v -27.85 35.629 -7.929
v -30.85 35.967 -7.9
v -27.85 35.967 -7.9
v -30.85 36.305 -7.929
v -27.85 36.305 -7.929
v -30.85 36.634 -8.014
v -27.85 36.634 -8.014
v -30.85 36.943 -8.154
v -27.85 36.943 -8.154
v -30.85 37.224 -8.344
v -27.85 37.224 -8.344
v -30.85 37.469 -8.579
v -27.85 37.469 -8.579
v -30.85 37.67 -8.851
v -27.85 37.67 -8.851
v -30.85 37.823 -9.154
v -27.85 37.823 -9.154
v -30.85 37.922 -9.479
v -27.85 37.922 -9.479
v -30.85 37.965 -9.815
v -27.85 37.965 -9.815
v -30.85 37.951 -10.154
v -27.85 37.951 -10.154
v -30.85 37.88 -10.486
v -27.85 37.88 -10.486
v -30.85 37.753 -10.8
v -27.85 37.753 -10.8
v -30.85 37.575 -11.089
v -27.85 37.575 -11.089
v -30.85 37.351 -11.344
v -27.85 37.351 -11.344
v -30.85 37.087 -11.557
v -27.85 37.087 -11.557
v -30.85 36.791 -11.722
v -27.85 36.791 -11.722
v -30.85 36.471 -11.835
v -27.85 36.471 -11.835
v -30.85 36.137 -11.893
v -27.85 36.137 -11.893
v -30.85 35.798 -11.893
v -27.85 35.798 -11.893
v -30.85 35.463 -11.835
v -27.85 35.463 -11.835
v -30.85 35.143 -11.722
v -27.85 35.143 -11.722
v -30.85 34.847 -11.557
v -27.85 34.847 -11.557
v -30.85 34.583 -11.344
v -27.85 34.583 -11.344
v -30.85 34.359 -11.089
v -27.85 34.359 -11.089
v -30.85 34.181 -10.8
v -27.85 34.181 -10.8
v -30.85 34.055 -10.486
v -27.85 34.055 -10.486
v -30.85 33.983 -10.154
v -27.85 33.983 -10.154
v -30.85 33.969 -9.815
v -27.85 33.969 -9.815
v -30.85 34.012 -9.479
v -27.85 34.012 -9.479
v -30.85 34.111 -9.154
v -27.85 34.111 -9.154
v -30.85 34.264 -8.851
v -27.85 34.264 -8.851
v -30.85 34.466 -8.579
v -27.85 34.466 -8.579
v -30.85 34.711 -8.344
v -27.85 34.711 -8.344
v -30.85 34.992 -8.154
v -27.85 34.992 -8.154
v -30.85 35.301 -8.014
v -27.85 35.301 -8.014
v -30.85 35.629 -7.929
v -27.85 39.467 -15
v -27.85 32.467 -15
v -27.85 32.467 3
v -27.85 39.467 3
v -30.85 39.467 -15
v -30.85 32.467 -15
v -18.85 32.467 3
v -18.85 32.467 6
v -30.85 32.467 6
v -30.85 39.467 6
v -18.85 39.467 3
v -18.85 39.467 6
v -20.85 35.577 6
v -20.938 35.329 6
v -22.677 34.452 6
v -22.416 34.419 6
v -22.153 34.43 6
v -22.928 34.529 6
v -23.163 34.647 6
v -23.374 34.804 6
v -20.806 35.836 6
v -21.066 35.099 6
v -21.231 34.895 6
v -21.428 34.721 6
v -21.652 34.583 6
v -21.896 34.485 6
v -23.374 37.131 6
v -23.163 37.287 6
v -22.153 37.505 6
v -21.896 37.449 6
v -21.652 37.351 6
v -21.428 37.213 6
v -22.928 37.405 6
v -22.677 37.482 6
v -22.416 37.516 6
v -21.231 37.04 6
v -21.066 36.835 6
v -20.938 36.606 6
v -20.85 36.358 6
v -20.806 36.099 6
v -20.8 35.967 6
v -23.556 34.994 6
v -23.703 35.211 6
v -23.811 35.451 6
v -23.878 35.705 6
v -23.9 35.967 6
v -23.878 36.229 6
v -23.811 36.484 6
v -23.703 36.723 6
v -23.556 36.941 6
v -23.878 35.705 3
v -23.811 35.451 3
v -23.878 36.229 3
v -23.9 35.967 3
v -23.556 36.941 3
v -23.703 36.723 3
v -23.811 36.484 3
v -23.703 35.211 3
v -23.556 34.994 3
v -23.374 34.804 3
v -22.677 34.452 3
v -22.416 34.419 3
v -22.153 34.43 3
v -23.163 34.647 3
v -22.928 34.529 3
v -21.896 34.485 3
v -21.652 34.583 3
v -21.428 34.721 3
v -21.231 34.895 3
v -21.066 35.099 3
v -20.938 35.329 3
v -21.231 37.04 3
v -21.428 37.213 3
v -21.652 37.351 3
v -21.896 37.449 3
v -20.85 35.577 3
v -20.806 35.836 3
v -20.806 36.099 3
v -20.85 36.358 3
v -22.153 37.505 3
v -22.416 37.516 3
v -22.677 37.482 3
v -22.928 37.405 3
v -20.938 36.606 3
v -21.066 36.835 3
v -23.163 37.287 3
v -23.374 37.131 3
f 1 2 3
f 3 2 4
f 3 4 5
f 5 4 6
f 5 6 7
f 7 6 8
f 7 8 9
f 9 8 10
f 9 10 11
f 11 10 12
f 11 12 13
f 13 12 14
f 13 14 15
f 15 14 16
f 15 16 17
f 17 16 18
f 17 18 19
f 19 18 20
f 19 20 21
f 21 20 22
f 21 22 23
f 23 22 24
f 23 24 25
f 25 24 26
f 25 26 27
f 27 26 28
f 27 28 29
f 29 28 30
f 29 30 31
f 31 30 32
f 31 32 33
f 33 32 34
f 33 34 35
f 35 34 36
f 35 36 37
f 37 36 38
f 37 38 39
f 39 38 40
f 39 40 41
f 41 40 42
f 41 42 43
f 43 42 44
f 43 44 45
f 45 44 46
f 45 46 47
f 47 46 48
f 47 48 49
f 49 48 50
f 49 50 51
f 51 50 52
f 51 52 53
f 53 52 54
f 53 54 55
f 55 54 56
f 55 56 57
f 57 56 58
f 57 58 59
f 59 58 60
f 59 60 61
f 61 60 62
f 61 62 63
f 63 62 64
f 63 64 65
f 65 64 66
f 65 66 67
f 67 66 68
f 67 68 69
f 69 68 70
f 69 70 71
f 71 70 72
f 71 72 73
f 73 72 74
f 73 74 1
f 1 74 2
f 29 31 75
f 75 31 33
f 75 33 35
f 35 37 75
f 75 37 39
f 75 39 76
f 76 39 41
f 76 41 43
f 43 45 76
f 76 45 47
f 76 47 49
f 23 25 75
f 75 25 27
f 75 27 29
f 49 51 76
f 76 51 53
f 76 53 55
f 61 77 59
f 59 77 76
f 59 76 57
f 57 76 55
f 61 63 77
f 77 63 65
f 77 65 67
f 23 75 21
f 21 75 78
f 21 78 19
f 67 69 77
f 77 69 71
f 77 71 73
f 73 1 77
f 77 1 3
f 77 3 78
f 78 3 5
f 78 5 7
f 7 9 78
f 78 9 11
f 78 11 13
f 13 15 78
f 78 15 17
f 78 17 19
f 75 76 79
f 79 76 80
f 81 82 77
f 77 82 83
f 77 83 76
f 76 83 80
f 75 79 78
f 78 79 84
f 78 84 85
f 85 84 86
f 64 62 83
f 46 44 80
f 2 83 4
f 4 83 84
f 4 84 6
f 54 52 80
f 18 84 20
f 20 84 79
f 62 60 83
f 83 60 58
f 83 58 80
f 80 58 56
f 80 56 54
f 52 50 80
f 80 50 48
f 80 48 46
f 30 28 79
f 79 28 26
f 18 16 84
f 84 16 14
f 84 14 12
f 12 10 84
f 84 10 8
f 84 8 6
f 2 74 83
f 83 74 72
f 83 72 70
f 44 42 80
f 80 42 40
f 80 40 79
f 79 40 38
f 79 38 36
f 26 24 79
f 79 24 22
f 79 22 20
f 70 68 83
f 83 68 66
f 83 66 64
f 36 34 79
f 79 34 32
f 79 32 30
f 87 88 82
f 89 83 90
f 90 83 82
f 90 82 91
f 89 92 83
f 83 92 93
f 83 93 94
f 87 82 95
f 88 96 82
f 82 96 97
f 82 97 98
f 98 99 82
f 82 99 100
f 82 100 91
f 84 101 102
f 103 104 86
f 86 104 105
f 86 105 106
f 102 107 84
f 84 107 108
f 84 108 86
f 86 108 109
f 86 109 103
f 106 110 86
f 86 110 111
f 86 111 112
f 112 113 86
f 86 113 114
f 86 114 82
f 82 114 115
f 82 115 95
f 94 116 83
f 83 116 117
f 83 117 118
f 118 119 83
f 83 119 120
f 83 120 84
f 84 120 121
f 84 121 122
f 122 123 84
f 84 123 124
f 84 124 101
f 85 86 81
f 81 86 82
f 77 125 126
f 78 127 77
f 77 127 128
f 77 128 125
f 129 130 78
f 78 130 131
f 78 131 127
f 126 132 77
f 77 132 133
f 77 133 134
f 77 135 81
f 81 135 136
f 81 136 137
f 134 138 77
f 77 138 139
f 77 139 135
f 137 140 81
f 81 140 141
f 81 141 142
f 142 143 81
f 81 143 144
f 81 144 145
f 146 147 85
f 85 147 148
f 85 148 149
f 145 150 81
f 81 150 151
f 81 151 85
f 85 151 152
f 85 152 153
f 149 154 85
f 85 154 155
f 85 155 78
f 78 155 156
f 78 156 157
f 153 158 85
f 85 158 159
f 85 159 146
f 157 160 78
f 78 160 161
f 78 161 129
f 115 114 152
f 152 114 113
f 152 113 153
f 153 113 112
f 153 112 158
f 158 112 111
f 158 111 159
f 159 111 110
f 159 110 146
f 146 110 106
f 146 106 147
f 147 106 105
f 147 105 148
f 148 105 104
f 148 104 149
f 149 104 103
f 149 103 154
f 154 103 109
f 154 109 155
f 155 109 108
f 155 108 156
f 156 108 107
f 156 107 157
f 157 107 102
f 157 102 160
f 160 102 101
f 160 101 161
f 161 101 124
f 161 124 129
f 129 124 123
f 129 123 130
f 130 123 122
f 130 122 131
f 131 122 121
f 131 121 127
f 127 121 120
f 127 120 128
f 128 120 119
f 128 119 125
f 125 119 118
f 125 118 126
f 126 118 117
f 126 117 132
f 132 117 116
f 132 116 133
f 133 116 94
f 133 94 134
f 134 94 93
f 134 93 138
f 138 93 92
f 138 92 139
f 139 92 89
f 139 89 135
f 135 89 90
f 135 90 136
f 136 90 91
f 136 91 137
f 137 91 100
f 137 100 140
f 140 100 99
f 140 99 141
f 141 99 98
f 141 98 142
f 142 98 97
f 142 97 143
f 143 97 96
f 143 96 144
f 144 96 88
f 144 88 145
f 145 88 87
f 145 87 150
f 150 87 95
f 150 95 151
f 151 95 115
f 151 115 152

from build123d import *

# Parameters (mm, degrees)
SKETCH1_W           = 132
SKETCH1_H           = 160
BOSS_EXTRUDE1_DEPTH = 6
SKETCH3_W           = 32
SKETCH3_H           = 54
SKETCH3_W_2         = 26
SKETCH3_H_2         = 48
BOSS_EXTRUDE2_DEPTH = 17.5
SKETCH4_W           = 32
SKETCH4_H           = 54
BOSS_EXTRUDE3_DEPTH = 3
SKETCH5_W           = 25
SKETCH5_H           = 17
CUT_EXTRUDE1_DEPTH  = 3
SKETCH6_W           = 12
SKETCH6_H           = 54
BOSS_EXTRUDE4_DEPTH = 3
SKETCH7_R           = 1.6
CUT_EXTRUDE2_DEPTH  = 106.177231376
SKETCH8_W           = 3
SKETCH8_H           = 6.5
BOSS_EXTRUDE5_DEPTH = 20
SKETCH9_R           = 1.55
CUT_EXTRUDE3_DEPTH  = 6
SKETCH10_R          = 1.6
CUT_EXTRUDE4_DEPTH  = 108.043215572
SKETCH11_W          = 2.5
SKETCH11_H          = 7
BOSS_EXTRUDE6_DEPTH = 19.36
SKETCH12_R          = 1.6
CUT_EXTRUDE5_DEPTH  = 19.36
SKETCH13_W          = 3
SKETCH13_H          = 7
BOSS_EXTRUDE7_DEPTH = 15
SKETCH14_R          = 2
CUT_EXTRUDE6_DEPTH  = 15
CUT_EXTRUDE7_START  = -6
CUT_EXTRUDE7_DEPTH  = 6
SKETCH16_R          = 1.6
CUT_EXTRUDE8_DEPTH  = 15
CUT_EXTRUDE9_DEPTH  = 69
SKETCH18_W          = 9
SKETCH18_H          = 3
CUT_EXTRUDE10_DEPTH = 69
SKETCH19_R          = 1.55
CUT_EXTRUDE11_DEPTH = 69


# Read off the part's stored shape, not the designer's step: Cut-Extrude7
with BuildPart() as part:
    # Sketch1 → Boss-Extrude1 (new body)
    with BuildSketch(Plane.XY):
        Rectangle(SKETCH1_W, SKETCH1_H)
    extrude(amount=BOSS_EXTRUDE1_DEPTH)

    # Sketch3 → Boss-Extrude2 (add)
    with BuildSketch(Plane.XY.offset(6)):
        with Locations((0, -53)):
            Rectangle(SKETCH3_W, SKETCH3_H)
        with Locations((0, -53)):
            Rectangle(SKETCH3_W_2, SKETCH3_H_2, mode=Mode.SUBTRACT)
    extrude(amount=BOSS_EXTRUDE2_DEPTH)

    # Sketch4 → Boss-Extrude3 (add)
    with BuildSketch(Plane.XY.offset(23.5)):
        with Locations((0, -53)):
            Rectangle(SKETCH4_W, SKETCH4_H)
    extrude(amount=BOSS_EXTRUDE3_DEPTH)

    # Sketch5 → Cut-Extrude1 (cut)
    with BuildSketch(Plane.XZ.offset(80)):
        with Locations((0, 14.5)):
            Rectangle(SKETCH5_W, SKETCH5_H)
    extrude(amount=-CUT_EXTRUDE1_DEPTH, mode=Mode.SUBTRACT)

    # Sketch6 → Boss-Extrude4 (add)
    with BuildSketch(Plane.XY.offset(6)):
        with Locations((-22, -53)):
            Rectangle(SKETCH6_W, SKETCH6_H)
        with Locations((22, -53)):
            Rectangle(SKETCH6_W, SKETCH6_H)
    extrude(amount=BOSS_EXTRUDE4_DEPTH)

    # Sketch7 → Cut-Extrude2 (cut, through all)
    with BuildSketch(Plane.XY.offset(9)):
        with Locations((-22, -69)):
            Circle(SKETCH7_R)
        with Locations((-22, -33)):
            Circle(SKETCH7_R)
        with Locations(Location((22, -69, 0), (0, 0, 180))):
            Circle(SKETCH7_R)
        with Locations(Location((22, -33, 0), (0, 0, 180))):
            Circle(SKETCH7_R)
    extrude(amount=-CUT_EXTRUDE2_DEPTH, mode=Mode.SUBTRACT)

    # Sketch8 → Boss-Extrude5 (add)
    with BuildSketch(Plane.XY.offset(6)):
        with Locations((-54.38, -76.75)):
            Rectangle(SKETCH8_W, SKETCH8_H)
        with Locations((-54.38, -30.25)):
            Rectangle(SKETCH8_W, SKETCH8_H)
    boss_extrude5 = extrude(amount=BOSS_EXTRUDE5_DEPTH)

    # Sketch9 → Cut-Extrude3 (cut)
    with BuildSketch(Plane.ZY.offset(55.88)):
        with Locations((10.35, -76.75)):
            Circle(SKETCH9_R)
        with Locations((19.65, -76.75)):
            Circle(SKETCH9_R)
        with Locations((10.35, -30.25)):
            Circle(SKETCH9_R)
        with Locations((19.65, -30.25)):
            Circle(SKETCH9_R)
    cut_extrude3 = extrude(amount=-CUT_EXTRUDE3_DEPTH, mode=Mode.SUBTRACT)

    # Mirror1: Boss-Extrude5, Cut-Extrude3 across plane
    add(boss_extrude5.mirror(Plane(origin=(0, 0, 0), x_dir=(0, 0, 1), z_dir=(1, 0, 0))))
    add(cut_extrude3.mirror(Plane(origin=(0, 0, 0), x_dir=(0, 0, 1), z_dir=(1, 0, 0))), mode=Mode.SUBTRACT)

    # Sketch10 → Cut-Extrude4 (cut, through all)
    with BuildSketch(Plane(origin=(0, 0, 0), x_dir=(-1, 0, 0), z_dir=(0, 0, -1))):
        with Locations((-24.1, -75.572749788)):
            Circle(SKETCH10_R)
        with Locations((-21.15, -12.732749788)):
            Circle(SKETCH10_R)
        with Locations(Location((21.15, -12.732749788, 0), (0, 0, 180))):
            Circle(SKETCH10_R)
        with Locations((24.1, -75.572749788)):
            Circle(SKETCH10_R)
    extrude(amount=-CUT_EXTRUDE4_DEPTH, mode=Mode.SUBTRACT)

    # Sketch11 → Boss-Extrude6 (add)
    with BuildSketch(Plane(origin=(0, 0, 0), x_dir=(-1, 0, 0), z_dir=(0, 0, -1))):
        with Locations((-17.9, 1.267250212)):
            Rectangle(SKETCH11_W, SKETCH11_H)
        with Locations((-17.9, 50.267250212)):
            Rectangle(SKETCH11_W, SKETCH11_H)
    extrude(amount=BOSS_EXTRUDE6_DEPTH)

    # Sketch12 → Cut-Extrude5 (cut)
    with BuildSketch(Plane(origin=(19.15, 0, 0), x_dir=(0, 0, -1), z_dir=(1, 0, 0))):
        with Locations(Location((4.5, 50.267250212, 0), (0, 0, 90))):
            Circle(SKETCH12_R)
        with Locations(Location((14.5, 50.267250212, 0), (0, 0, 90))):
            Circle(SKETCH12_R)
        with Locations(Location((4.5, 1.267250212, 0), (0, 0, 90))):
            Circle(SKETCH12_R)
        with Locations(Location((14.5, 1.267250212, 0), (0, 0, 90))):
            Circle(SKETCH12_R)
    extrude(amount=-CUT_EXTRUDE5_DEPTH, mode=Mode.SUBTRACT)

    # Sketch13 → Boss-Extrude7 (add)
    with BuildSketch(Plane(origin=(0, 0, 0), x_dir=(-1, 0, 0), z_dir=(0, 0, -1))):
        with Locations((29.35, 35.967250212)):
            Rectangle(SKETCH13_W, SKETCH13_H)
    extrude(amount=BOSS_EXTRUDE7_DEPTH)

    # Sketch14 → Cut-Extrude6 (cut)
    with BuildSketch(Plane.ZY.offset(30.85)):
        with Locations((-9.9, 35.967250212)):
            Circle(SKETCH14_R)
    extrude(amount=-CUT_EXTRUDE6_DEPTH, mode=Mode.SUBTRACT)

    # Cut-Extrude7 outline → Cut-Extrude7 (cut)
    with BuildSketch(Plane(origin=(0, 0, 0), x_dir=(-1, 0, 0), z_dir=(0, 0, -1)).offset(CUT_EXTRUDE7_START)):
        Polygon((-30.85, 56.767250212), (30.85, 56.767250212), (30.85, -24), (58.88, -24), (58.88, -80), (66, -80), (66, 80), (-66, 80), (-66, -80), (-58.88, -80), (-58.88, -24), (-30.85, -24), align=None)
    extrude(amount=CUT_EXTRUDE7_DEPTH, mode=Mode.SUBTRACT)

    # Sketch16 → Cut-Extrude8 (cut)
    with BuildSketch(Plane(origin=(0, 0, 0), x_dir=(-1, 0, 0), z_dir=(0, 0, -1))):
        Circle(SKETCH16_R)
        with Locations((0, 52.767250212)):
            Circle(SKETCH16_R)
    extrude(amount=-CUT_EXTRUDE8_DEPTH, mode=Mode.SUBTRACT)

    # Sketch17 → Cut-Extrude9 (cut)
    with BuildSketch(Plane(origin=(0, 0, 0), x_dir=(-1, 0, 0), z_dir=(0, 0, -1))):
        Polygon((-30.85, 56.767250212), (30.85, 56.767250212), (30.85, 39.467250212), (18.85, 39.467250212), (18.85, 32.467250212), (30.85, 32.467250212), (58.88, -24), (58.88, -80), (-58.88, -80), (-58.88, 56.767250212), align=None)
    extrude(amount=-CUT_EXTRUDE9_DEPTH, mode=Mode.SUBTRACT)


with BuildPart() as body_2:
    # of the pieces the cut leaves, the one that is kept (cut_extrude9_keep)
    add(part.part.solids().sort_by_distance((-27.85, 39.467250212, 0))[0])

    # Sketch18 → Cut-Extrude10 (cut)
    with BuildSketch(Plane.XZ.offset(-32.467250212)):
        with Locations((-23.35, 1.5)):
            Rectangle(SKETCH18_W, SKETCH18_H)
    extrude(amount=-CUT_EXTRUDE10_DEPTH, mode=Mode.SUBTRACT)

    # Sketch19 → Cut-Extrude11 (cut)
    with BuildSketch(Plane(origin=(0, 0, 3), x_dir=(-1, 0, 0), z_dir=(0, 0, -1))):
        with Locations((22.35, 35.967250212)):
            Circle(SKETCH19_R)
    extrude(amount=-CUT_EXTRUDE11_DEPTH, mode=Mode.SUBTRACT)


solid = body_2.part
